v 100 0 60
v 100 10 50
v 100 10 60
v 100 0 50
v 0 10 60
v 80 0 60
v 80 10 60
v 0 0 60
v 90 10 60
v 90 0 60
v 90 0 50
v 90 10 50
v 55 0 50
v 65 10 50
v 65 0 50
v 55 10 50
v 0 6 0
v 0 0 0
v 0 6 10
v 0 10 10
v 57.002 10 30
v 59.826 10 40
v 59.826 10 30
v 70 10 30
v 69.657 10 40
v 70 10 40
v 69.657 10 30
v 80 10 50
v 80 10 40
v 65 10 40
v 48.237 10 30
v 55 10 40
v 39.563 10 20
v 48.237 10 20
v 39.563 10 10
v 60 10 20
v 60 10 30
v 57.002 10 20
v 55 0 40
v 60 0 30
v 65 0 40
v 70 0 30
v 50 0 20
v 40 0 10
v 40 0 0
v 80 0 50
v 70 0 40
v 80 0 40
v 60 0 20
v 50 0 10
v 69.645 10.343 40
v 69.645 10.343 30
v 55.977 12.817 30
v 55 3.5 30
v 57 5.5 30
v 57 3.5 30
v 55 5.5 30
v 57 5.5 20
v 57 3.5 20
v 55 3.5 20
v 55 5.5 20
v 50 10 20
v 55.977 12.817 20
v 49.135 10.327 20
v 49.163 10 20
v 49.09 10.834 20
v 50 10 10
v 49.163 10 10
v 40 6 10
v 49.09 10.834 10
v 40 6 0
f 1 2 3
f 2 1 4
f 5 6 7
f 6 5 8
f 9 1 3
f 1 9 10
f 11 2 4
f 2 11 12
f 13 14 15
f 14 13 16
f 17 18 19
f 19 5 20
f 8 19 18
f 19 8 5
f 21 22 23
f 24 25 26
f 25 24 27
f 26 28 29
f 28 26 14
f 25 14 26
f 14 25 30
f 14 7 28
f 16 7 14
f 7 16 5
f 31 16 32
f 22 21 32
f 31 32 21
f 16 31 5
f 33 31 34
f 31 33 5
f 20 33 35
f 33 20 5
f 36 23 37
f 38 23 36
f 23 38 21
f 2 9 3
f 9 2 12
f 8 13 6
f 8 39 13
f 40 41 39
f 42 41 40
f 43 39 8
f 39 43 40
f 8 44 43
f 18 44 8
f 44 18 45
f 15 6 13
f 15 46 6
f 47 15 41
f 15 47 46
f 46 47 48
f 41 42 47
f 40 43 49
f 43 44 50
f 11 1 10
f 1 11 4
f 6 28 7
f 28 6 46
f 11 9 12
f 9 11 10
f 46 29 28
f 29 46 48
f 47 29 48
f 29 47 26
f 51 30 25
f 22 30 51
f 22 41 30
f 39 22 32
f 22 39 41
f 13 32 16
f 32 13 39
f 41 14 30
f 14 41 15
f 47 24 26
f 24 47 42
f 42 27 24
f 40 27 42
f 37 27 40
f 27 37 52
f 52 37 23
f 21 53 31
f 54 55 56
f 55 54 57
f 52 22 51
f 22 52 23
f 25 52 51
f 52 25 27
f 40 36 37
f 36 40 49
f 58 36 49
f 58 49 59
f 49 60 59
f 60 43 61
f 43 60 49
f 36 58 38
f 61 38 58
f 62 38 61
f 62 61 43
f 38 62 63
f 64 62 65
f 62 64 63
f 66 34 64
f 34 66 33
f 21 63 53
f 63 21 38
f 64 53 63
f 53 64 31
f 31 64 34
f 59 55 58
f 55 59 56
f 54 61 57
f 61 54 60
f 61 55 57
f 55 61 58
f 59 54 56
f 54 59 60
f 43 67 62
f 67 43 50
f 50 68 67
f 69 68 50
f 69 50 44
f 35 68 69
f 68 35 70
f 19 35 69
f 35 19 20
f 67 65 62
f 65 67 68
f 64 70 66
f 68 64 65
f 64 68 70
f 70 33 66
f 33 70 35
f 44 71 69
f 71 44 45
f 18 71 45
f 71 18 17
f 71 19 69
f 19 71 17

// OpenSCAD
// Define dimensions for each component
module long_hook_shaped_bar() {
    difference() {
        cube([100, 10, 10]); // Main bar
        translate([90, 0, 0]) rotate([0, 0, 90]) cube([15, 10, 10]); // Hook extended and made more pronounced
    }
}

module hook_shaped_bracket() {
    difference() {
        cube([80, 10, 10]); // Main bar
        translate([65, 0, 0]) rotate([0, 0, 90]) cube([15, 10, 10]); // Hook length extended to match original dimensions
    }
}

module flat_bar_with_small_bend() {
    union() {
        cube([70, 10, 10]); // Main bar
        translate([60, 0, 0]) rotate([0, 0, 2]) cube([10, 10, 10]); // Bend softened to form a gentle curve
    }
}

module angled_bar_with_notch() {
    difference() {
        union() {
            cube([60, 10, 10]); // Main bar
            translate([50, 0, 0]) rotate([0, 0, 20]) cube([10, 10, 10]); // Angled end adjusted to match original design
        }
        translate([55, 3.5, 0]) cube([2, 2, 10]); // Notch made shallower and more precise
    }
}

module straight_bar_with_bent_end() {
    union() {
        cube([50, 10, 10]); // Main bar
        translate([40, 0, 0]) rotate([0, 0, 5]) cube([10, 10, 10]); // Bent end reduced to form a subtler angle
    }
}

module short_straight_bar() {
    cube([40, 6, 10]); // Short straight bar with reduced thickness
}

// Assemble the model based on positional relationships
module flexible_coupling() {
    translate([0, 0, 50]) long_hook_shaped_bar(); // Layer 1
    translate([0, 0, 40]) hook_shaped_bracket(); // Layer 2
    translate([0, 0, 30]) flat_bar_with_small_bend(); // Layer 3
    translate([0, 0, 20]) angled_bar_with_notch(); // Layer 4
    translate([0, 0, 10]) straight_bar_with_bent_end(); // Layer 5
    translate([0, 0, 0]) short_straight_bar(); // Layer 6
}

// Render the model
flexible_coupling();
